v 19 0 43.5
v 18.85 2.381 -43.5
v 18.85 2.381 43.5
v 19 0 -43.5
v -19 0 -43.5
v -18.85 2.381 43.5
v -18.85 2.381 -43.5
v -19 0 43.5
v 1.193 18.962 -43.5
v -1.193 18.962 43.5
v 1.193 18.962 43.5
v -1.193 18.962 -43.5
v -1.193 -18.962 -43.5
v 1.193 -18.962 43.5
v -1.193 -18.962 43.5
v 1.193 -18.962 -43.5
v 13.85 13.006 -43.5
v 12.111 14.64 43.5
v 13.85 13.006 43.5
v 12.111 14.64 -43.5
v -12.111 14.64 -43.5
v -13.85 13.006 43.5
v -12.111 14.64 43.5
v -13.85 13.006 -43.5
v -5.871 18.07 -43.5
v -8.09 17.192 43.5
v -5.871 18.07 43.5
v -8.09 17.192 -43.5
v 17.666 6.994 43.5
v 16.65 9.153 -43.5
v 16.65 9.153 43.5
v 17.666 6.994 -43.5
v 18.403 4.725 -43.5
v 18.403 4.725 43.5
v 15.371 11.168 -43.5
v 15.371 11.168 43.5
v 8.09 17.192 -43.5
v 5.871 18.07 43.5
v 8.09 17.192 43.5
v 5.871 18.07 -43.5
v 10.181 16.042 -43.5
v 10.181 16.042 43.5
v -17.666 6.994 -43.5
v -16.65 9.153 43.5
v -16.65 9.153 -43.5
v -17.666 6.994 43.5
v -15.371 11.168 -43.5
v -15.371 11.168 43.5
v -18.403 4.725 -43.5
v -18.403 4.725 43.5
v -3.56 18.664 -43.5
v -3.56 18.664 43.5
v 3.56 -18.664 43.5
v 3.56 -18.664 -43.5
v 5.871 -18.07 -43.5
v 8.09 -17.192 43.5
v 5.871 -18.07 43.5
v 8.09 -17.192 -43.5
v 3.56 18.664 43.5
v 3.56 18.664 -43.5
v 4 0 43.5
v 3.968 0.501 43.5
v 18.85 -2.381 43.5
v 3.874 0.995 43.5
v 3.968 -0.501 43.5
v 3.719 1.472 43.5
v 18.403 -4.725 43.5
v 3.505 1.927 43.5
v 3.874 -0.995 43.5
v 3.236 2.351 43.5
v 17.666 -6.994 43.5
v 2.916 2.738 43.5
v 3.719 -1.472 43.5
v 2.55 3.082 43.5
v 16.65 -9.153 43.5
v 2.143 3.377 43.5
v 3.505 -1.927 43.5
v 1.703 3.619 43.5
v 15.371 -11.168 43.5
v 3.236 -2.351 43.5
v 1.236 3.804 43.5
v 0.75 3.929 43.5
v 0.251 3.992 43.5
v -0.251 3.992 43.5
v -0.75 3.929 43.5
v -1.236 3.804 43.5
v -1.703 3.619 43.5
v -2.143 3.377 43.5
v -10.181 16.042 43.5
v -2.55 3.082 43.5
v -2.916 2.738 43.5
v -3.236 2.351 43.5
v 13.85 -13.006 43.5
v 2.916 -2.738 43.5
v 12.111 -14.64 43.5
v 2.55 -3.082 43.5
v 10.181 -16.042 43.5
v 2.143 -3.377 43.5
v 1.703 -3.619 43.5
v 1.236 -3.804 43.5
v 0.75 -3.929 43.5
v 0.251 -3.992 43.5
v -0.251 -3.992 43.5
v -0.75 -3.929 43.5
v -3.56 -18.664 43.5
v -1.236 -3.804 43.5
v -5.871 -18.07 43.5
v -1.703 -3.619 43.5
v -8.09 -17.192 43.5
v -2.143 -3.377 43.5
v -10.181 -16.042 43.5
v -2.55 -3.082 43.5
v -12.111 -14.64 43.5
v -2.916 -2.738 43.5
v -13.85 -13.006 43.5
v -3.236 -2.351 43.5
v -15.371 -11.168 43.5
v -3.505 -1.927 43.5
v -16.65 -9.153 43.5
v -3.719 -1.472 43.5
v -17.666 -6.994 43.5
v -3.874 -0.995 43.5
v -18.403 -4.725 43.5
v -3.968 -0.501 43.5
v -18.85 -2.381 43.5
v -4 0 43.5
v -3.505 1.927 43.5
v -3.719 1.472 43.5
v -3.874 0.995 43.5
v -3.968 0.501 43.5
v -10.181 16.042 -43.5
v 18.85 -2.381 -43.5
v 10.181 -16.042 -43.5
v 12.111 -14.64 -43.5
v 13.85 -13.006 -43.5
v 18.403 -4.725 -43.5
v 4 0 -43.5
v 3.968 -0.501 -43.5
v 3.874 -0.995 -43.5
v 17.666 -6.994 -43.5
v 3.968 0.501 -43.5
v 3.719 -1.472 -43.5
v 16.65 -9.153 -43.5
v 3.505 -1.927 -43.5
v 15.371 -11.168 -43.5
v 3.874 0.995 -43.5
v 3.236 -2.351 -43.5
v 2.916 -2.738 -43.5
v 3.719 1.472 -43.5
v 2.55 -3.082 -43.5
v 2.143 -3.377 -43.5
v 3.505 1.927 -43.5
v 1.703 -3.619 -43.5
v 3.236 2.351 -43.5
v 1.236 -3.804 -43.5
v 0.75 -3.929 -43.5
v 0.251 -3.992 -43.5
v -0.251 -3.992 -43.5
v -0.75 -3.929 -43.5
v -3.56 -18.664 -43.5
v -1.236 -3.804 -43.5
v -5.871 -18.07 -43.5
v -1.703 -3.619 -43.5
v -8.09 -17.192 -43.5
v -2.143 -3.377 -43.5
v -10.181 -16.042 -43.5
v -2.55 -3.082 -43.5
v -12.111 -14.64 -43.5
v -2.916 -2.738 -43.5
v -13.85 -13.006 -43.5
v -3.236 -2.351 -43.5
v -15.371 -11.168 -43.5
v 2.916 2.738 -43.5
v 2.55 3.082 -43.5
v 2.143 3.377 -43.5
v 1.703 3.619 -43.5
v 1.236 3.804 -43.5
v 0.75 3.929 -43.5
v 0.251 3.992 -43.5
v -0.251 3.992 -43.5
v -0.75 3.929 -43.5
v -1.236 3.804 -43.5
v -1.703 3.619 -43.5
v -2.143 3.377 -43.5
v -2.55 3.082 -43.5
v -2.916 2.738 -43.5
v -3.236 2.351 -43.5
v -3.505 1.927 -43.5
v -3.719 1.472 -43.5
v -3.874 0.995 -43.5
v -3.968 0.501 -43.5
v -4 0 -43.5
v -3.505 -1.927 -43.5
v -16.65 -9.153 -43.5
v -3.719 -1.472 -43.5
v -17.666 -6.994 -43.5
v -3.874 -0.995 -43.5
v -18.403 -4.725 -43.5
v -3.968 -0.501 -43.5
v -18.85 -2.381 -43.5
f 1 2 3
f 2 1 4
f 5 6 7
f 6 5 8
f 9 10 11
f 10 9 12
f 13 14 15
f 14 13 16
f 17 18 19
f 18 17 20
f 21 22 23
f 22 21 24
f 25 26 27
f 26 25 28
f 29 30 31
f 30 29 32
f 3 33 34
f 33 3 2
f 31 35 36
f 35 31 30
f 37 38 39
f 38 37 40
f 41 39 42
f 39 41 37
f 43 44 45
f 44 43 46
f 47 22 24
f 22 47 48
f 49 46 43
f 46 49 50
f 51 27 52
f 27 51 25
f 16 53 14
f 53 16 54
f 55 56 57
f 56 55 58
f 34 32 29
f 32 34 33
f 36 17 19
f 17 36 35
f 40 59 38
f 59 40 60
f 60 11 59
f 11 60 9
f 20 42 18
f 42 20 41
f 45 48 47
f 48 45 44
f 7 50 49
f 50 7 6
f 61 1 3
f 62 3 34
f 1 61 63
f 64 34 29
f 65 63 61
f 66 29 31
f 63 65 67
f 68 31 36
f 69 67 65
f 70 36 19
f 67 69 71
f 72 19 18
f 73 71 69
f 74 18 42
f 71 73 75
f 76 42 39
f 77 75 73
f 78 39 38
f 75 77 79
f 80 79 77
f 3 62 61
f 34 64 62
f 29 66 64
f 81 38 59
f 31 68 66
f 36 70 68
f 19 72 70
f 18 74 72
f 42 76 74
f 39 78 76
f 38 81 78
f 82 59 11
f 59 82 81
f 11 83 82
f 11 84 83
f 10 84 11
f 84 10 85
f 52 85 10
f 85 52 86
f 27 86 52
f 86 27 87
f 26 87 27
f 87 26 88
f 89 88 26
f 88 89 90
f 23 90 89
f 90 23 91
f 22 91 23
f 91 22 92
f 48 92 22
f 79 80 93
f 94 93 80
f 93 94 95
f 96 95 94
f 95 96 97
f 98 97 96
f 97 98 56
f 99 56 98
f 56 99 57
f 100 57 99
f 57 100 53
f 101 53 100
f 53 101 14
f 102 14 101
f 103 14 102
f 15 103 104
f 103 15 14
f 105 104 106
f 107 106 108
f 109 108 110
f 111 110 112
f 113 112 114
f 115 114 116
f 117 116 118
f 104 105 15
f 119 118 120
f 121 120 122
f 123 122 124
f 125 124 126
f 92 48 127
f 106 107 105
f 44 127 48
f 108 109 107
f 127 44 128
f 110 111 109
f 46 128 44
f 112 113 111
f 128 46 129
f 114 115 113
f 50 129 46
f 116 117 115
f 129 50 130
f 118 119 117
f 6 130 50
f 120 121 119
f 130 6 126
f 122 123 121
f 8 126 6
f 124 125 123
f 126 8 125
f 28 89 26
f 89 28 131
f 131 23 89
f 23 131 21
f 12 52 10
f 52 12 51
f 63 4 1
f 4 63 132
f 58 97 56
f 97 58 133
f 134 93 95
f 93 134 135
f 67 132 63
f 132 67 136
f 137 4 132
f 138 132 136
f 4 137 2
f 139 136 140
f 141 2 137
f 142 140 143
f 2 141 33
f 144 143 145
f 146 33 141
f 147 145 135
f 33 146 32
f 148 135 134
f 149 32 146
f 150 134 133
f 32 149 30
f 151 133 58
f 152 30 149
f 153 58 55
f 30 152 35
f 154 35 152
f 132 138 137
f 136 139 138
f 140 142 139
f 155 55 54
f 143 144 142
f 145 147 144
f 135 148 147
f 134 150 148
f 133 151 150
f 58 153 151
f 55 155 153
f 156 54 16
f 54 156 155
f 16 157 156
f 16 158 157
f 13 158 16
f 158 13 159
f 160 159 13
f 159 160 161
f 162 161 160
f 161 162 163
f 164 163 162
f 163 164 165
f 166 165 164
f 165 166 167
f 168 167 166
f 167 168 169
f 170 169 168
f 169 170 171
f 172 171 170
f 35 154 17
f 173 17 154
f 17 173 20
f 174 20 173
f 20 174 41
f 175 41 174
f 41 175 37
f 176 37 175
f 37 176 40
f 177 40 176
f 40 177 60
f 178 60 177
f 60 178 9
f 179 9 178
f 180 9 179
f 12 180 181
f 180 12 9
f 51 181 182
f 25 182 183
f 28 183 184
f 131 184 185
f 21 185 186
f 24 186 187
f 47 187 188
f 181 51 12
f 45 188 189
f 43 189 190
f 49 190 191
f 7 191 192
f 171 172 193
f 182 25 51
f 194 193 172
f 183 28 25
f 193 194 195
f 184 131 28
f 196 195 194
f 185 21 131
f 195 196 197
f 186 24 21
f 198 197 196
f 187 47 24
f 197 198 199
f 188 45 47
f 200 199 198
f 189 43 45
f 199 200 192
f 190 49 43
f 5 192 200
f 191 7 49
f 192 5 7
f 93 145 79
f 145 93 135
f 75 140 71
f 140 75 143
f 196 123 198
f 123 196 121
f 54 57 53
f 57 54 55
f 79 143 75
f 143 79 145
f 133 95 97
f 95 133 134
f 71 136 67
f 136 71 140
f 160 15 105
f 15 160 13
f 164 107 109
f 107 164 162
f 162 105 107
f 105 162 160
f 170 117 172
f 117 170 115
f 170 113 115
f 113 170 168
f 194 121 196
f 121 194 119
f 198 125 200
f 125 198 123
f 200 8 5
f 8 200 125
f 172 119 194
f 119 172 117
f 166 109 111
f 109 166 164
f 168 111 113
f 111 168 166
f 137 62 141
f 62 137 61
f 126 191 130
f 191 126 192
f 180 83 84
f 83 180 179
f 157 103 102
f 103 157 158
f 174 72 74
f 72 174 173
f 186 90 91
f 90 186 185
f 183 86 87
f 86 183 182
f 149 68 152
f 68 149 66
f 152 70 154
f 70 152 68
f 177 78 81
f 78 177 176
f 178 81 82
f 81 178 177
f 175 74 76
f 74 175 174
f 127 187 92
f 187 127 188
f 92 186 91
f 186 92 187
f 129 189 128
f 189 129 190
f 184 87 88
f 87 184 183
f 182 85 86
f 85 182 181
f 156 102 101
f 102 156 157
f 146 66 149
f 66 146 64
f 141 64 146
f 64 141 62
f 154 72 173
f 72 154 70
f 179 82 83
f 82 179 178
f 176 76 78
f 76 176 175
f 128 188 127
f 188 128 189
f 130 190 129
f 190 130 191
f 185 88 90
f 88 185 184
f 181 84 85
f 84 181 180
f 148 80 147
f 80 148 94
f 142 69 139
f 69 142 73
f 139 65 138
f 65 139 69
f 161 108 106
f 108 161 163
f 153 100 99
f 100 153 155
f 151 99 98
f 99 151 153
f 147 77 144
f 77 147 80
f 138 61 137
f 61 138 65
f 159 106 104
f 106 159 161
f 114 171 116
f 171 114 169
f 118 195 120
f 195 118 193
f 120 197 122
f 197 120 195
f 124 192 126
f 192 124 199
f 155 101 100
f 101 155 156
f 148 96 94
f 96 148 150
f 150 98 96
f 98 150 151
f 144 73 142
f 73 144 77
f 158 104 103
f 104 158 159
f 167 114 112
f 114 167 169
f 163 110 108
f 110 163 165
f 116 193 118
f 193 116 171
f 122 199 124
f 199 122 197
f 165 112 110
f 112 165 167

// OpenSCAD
$fn = 50;


difference() {
	union() {
		translate(v = [0, 0, -43.5000000000]) {
			cylinder(h = 87, r = 19.0000000000);
		}
	}
	union() {
		translate(v = [0, 0, -100.0000000000]) {
			cylinder(h = 200, r = 4.0000000000);
		}
	}
}
